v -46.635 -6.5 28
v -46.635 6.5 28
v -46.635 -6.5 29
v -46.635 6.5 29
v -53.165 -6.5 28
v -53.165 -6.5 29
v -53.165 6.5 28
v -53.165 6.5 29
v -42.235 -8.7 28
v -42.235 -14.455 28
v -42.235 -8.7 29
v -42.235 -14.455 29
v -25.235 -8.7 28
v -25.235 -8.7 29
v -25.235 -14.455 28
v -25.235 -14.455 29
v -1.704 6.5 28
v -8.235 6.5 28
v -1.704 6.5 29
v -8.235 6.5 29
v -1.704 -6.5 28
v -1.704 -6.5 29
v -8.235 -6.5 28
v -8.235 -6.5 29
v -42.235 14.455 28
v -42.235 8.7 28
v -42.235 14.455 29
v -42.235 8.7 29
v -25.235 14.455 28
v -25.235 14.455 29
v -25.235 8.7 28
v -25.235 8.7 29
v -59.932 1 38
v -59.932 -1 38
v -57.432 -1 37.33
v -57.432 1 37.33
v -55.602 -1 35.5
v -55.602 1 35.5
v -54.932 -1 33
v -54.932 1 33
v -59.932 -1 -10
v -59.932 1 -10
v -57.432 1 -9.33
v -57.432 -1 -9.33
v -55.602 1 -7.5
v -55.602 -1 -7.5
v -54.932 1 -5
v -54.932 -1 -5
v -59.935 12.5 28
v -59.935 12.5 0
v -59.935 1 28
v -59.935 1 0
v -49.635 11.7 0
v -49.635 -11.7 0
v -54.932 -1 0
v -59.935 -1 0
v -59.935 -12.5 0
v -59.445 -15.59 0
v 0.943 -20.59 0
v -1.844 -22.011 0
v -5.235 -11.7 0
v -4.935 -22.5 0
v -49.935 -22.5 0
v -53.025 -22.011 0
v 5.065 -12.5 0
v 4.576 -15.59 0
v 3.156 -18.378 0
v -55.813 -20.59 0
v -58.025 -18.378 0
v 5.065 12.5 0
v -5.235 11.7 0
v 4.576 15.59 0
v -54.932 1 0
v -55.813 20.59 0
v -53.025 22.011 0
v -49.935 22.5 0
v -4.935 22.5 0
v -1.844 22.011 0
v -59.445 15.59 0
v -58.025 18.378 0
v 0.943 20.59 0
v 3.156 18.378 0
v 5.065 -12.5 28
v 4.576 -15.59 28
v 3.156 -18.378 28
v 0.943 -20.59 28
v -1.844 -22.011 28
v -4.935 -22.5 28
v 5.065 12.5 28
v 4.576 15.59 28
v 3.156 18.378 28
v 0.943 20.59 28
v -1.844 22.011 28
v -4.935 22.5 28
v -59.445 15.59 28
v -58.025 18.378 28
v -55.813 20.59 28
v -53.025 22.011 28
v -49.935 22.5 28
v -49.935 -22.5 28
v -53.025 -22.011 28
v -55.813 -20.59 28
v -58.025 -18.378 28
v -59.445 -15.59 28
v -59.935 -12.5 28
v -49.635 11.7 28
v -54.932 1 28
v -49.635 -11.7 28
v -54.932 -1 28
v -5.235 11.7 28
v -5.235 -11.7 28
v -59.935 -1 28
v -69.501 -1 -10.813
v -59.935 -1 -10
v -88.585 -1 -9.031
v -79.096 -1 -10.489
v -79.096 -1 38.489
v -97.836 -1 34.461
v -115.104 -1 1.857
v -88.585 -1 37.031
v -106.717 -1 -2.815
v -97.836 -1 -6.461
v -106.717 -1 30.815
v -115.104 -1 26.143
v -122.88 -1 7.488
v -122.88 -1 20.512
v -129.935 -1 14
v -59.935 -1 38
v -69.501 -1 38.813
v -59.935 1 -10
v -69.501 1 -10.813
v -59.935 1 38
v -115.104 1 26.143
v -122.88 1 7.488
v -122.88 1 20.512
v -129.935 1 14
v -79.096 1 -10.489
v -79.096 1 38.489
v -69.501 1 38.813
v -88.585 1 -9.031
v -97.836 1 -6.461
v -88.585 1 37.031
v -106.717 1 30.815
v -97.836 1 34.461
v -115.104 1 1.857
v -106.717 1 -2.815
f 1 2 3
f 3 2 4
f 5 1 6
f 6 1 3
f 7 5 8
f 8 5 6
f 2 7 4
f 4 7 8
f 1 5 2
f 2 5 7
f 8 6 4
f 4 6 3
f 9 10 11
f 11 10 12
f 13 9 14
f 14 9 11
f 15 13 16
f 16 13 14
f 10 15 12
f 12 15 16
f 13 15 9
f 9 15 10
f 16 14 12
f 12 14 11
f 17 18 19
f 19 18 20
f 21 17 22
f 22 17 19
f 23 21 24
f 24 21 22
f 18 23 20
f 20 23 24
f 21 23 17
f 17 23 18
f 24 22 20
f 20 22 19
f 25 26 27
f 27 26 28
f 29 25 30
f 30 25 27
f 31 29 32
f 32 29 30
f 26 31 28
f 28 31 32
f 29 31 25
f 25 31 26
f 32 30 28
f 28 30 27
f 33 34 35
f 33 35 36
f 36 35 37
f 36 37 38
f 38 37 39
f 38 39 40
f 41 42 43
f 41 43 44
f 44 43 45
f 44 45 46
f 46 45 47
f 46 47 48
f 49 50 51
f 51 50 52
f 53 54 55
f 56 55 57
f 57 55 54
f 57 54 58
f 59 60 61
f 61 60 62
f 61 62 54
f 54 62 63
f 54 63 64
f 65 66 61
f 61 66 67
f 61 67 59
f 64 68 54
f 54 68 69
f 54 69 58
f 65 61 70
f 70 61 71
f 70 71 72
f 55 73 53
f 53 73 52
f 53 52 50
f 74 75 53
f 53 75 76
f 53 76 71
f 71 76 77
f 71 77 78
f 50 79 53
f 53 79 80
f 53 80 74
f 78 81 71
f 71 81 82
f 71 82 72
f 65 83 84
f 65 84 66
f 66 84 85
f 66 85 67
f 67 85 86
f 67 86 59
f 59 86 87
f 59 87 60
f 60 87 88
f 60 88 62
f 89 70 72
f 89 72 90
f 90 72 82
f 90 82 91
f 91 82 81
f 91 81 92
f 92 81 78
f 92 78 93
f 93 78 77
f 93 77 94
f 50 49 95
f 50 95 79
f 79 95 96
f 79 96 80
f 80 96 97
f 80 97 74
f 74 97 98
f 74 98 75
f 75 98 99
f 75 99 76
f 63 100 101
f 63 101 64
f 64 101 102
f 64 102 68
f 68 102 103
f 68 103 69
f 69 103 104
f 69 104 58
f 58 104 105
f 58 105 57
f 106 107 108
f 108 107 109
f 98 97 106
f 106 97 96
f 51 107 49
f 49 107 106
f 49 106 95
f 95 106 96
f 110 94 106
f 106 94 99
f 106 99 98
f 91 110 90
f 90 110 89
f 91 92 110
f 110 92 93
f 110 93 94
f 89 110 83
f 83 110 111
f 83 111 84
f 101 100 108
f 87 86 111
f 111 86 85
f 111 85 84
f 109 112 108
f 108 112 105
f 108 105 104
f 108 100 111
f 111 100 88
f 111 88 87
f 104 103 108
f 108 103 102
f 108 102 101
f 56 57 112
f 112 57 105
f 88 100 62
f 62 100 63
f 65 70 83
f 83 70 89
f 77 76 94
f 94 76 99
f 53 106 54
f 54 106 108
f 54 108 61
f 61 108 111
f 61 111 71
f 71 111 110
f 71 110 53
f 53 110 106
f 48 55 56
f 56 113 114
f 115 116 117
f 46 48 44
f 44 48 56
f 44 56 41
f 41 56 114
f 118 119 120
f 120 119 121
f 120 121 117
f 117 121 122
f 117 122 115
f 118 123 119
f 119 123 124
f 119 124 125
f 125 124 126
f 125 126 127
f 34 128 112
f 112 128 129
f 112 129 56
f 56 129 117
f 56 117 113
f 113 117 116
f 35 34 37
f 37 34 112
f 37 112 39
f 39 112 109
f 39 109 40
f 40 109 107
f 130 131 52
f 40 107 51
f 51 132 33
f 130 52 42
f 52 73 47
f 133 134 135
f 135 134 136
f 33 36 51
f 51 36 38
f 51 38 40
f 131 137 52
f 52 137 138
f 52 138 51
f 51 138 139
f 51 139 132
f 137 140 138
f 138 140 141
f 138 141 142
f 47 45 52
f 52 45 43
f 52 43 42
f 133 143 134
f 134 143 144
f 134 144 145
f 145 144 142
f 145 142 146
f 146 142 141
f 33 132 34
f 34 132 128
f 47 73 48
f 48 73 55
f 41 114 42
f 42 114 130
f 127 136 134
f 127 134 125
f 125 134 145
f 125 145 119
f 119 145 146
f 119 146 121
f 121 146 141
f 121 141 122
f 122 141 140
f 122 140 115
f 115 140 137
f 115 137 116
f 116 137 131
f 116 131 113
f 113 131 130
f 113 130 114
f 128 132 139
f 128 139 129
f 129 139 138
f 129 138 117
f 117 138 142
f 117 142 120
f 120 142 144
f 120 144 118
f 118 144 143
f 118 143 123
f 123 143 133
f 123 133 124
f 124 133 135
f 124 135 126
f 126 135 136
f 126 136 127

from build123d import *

# Parameters (mm, degrees)
SKETCH_1_W           = 65
SKETCH_1_H           = 45
EXTRUDE_1_DEPTH      = 28
SKETCH_2_W           = 44.4
SKETCH_2_H           = 23.4
CUT_EXTRUDE_1_DEPTH  = 39
FILLET_1_R           = 10
FILLET_2_R           = 10
FILLET_3_R           = 10
FILLET_4_R           = 10
EXTRUDE_6_DEPTH      = 1
EXTRUDE_6_2_DEPTH    = 1
EXTRUDE_6_3_DEPTH    = 1
SKETCH_10_W          = 17
SKETCH_10_H          = 5.754584259
EXTRUDE_6_4_DEPTH    = 1
SKETCH_20_W          = 5.002637397
SKETCH_20_H          = 2
EXTRUDE_7_DEPTH      = 10
SKETCH_21_W          = 5.00232547
SKETCH_21_H          = 2
EXTRUDE_8_DEPTH      = 10
EXTRUDE_9_DEPTH      = 1
EXTRUDE_9_DEPTH_BACK = 1
FILLET_5_R           = 5
FILLET_6_R           = 5


with BuildPart() as part:
    # 草圖1 → 填料-伸長1 (new body)
    with BuildSketch(Plane.XY):
        with Locations((-27.434655272, 0)):
            Rectangle(SKETCH_1_W, SKETCH_1_H)
    extrude(amount=EXTRUDE_1_DEPTH)

    # 草圖2 → 除料-伸長1 (cut)
    with BuildSketch(Plane.XY):
        with Locations((-27.434655272, 0)):
            Rectangle(SKETCH_2_W, SKETCH_2_H)
    extrude(amount=CUT_EXTRUDE_1_DEPTH, mode=Mode.SUBTRACT)

    # 圓角1
    fillet_1_edges = [part.edges().sort_by_distance(p)[0] for p in [
        (-59.934655272, -22.5, 14),
    ]]
    fillet(fillet_1_edges, radius=FILLET_1_R)

    # 圓角2
    fillet_2_edges = [part.edges().sort_by_distance(p)[0] for p in [
        (-59.934655272, 22.5, 14),
    ]]
    fillet(fillet_2_edges, radius=FILLET_2_R)

    # 圓角3
    fillet_3_edges = [part.edges().sort_by_distance(p)[0] for p in [
        (5.065344728, 22.5, 14),
    ]]
    fillet(fillet_3_edges, radius=FILLET_3_R)

    # 圓角4
    fillet_4_edges = [part.edges().sort_by_distance(p)[0] for p in [
        (5.065344728, -22.5, 14),
    ]]
    fillet(fillet_4_edges, radius=FILLET_4_R)

    # 草圖20 → 填料-伸長7 (add)
    with BuildSketch(Plane.XY.offset(28)):
        with Locations((-57.433336574, 0)):
            Rectangle(SKETCH_20_W, SKETCH_20_H)
    extrude(amount=EXTRUDE_7_DEPTH)

    # 草圖21 → 填料-伸長8 (add)
    with BuildSketch(Plane(origin=(0, 0, 0), x_dir=(-1, 0, 0), z_dir=(0, 0, -1))):
        with Locations((57.433492537, 0)):
            Rectangle(SKETCH_21_W, SKETCH_21_H)
    extrude(amount=EXTRUDE_8_DEPTH)

    # 草圖22 → 填料-伸長9 (add, two sides)
    with BuildSketch(Plane(origin=(0, 0, 0), x_dir=(1, 0, 0), z_dir=(0, 1, 0))) as extrude_9_sk:
        with BuildLine():
            Line((-59.934655272, 10), (-59.934655272, -38))
            ThreePointArc((-59.934655272, -38), (-97.835563119, -34.46098122), (-129.934655272, -14))
            ThreePointArc((-129.934655272, -14), (-97.835563119, 6.46098122), (-59.934655272, 10))
        make_face()
    extrude(amount=EXTRUDE_9_DEPTH)
    extrude(extrude_9_sk.sketch, amount=-EXTRUDE_9_DEPTH_BACK)

    # 圓角5
    fillet_5_edges = [part.edges().sort_by_distance(p)[0] for p in [
        (-54.932329802, 0, -10),
    ]]
    fillet(fillet_5_edges, radius=FILLET_5_R)

    # 圓角6
    fillet_6_edges = [part.edges().sort_by_distance(p)[0] for p in [
        (-54.932017875, 0, 38),
    ]]
    fillet(fillet_6_edges, radius=FILLET_6_R)


with BuildPart() as body_2:
    # 草圖10 → 填料-伸長6 (new body)
    with BuildSketch(Plane.XY.offset(29)):
        Polygon((-49.634655272, 6.5), (-53.165057103, 6.5), (-53.165057103, -6.5), (-46.634655272, -6.5), (-46.634655272, 6.5), align=None)
    extrude(amount=-EXTRUDE_6_DEPTH)


with BuildPart() as body_3:
    # 草圖10 → Extrude 6 2 (new body)
    with BuildSketch(Plane.XY.offset(29)):
        Polygon((-42.234655272, -11.7), (-42.234655272, -8.7), (-25.234655272, -8.7), (-25.234655272, -14.454584259), (-42.234655272, -14.454584259), align=None)
    extrude(amount=-EXTRUDE_6_2_DEPTH)


with BuildPart() as body_4:
    # 草圖10 → Extrude 6 3 (new body)
    with BuildSketch(Plane.XY.offset(29)):
        Polygon((-8.234655272, 6.5), (-8.234655272, -6.5), (-5.234655272, -6.5), (-1.70425344, -6.5), (-1.70425344, 6.5), align=None)
    extrude(amount=-EXTRUDE_6_3_DEPTH)


with BuildPart() as body_5:
    # 草圖10 → Extrude 6 4 (new body)
    with BuildSketch(Plane.XY.offset(29)):
        with Locations((-33.734655272, 11.57729213)):
            Rectangle(SKETCH_10_W, SKETCH_10_H)
    extrude(amount=-EXTRUDE_6_4_DEPTH)


solid = Compound([part.part, body_2.part, body_3.part, body_4.part, body_5.part])
